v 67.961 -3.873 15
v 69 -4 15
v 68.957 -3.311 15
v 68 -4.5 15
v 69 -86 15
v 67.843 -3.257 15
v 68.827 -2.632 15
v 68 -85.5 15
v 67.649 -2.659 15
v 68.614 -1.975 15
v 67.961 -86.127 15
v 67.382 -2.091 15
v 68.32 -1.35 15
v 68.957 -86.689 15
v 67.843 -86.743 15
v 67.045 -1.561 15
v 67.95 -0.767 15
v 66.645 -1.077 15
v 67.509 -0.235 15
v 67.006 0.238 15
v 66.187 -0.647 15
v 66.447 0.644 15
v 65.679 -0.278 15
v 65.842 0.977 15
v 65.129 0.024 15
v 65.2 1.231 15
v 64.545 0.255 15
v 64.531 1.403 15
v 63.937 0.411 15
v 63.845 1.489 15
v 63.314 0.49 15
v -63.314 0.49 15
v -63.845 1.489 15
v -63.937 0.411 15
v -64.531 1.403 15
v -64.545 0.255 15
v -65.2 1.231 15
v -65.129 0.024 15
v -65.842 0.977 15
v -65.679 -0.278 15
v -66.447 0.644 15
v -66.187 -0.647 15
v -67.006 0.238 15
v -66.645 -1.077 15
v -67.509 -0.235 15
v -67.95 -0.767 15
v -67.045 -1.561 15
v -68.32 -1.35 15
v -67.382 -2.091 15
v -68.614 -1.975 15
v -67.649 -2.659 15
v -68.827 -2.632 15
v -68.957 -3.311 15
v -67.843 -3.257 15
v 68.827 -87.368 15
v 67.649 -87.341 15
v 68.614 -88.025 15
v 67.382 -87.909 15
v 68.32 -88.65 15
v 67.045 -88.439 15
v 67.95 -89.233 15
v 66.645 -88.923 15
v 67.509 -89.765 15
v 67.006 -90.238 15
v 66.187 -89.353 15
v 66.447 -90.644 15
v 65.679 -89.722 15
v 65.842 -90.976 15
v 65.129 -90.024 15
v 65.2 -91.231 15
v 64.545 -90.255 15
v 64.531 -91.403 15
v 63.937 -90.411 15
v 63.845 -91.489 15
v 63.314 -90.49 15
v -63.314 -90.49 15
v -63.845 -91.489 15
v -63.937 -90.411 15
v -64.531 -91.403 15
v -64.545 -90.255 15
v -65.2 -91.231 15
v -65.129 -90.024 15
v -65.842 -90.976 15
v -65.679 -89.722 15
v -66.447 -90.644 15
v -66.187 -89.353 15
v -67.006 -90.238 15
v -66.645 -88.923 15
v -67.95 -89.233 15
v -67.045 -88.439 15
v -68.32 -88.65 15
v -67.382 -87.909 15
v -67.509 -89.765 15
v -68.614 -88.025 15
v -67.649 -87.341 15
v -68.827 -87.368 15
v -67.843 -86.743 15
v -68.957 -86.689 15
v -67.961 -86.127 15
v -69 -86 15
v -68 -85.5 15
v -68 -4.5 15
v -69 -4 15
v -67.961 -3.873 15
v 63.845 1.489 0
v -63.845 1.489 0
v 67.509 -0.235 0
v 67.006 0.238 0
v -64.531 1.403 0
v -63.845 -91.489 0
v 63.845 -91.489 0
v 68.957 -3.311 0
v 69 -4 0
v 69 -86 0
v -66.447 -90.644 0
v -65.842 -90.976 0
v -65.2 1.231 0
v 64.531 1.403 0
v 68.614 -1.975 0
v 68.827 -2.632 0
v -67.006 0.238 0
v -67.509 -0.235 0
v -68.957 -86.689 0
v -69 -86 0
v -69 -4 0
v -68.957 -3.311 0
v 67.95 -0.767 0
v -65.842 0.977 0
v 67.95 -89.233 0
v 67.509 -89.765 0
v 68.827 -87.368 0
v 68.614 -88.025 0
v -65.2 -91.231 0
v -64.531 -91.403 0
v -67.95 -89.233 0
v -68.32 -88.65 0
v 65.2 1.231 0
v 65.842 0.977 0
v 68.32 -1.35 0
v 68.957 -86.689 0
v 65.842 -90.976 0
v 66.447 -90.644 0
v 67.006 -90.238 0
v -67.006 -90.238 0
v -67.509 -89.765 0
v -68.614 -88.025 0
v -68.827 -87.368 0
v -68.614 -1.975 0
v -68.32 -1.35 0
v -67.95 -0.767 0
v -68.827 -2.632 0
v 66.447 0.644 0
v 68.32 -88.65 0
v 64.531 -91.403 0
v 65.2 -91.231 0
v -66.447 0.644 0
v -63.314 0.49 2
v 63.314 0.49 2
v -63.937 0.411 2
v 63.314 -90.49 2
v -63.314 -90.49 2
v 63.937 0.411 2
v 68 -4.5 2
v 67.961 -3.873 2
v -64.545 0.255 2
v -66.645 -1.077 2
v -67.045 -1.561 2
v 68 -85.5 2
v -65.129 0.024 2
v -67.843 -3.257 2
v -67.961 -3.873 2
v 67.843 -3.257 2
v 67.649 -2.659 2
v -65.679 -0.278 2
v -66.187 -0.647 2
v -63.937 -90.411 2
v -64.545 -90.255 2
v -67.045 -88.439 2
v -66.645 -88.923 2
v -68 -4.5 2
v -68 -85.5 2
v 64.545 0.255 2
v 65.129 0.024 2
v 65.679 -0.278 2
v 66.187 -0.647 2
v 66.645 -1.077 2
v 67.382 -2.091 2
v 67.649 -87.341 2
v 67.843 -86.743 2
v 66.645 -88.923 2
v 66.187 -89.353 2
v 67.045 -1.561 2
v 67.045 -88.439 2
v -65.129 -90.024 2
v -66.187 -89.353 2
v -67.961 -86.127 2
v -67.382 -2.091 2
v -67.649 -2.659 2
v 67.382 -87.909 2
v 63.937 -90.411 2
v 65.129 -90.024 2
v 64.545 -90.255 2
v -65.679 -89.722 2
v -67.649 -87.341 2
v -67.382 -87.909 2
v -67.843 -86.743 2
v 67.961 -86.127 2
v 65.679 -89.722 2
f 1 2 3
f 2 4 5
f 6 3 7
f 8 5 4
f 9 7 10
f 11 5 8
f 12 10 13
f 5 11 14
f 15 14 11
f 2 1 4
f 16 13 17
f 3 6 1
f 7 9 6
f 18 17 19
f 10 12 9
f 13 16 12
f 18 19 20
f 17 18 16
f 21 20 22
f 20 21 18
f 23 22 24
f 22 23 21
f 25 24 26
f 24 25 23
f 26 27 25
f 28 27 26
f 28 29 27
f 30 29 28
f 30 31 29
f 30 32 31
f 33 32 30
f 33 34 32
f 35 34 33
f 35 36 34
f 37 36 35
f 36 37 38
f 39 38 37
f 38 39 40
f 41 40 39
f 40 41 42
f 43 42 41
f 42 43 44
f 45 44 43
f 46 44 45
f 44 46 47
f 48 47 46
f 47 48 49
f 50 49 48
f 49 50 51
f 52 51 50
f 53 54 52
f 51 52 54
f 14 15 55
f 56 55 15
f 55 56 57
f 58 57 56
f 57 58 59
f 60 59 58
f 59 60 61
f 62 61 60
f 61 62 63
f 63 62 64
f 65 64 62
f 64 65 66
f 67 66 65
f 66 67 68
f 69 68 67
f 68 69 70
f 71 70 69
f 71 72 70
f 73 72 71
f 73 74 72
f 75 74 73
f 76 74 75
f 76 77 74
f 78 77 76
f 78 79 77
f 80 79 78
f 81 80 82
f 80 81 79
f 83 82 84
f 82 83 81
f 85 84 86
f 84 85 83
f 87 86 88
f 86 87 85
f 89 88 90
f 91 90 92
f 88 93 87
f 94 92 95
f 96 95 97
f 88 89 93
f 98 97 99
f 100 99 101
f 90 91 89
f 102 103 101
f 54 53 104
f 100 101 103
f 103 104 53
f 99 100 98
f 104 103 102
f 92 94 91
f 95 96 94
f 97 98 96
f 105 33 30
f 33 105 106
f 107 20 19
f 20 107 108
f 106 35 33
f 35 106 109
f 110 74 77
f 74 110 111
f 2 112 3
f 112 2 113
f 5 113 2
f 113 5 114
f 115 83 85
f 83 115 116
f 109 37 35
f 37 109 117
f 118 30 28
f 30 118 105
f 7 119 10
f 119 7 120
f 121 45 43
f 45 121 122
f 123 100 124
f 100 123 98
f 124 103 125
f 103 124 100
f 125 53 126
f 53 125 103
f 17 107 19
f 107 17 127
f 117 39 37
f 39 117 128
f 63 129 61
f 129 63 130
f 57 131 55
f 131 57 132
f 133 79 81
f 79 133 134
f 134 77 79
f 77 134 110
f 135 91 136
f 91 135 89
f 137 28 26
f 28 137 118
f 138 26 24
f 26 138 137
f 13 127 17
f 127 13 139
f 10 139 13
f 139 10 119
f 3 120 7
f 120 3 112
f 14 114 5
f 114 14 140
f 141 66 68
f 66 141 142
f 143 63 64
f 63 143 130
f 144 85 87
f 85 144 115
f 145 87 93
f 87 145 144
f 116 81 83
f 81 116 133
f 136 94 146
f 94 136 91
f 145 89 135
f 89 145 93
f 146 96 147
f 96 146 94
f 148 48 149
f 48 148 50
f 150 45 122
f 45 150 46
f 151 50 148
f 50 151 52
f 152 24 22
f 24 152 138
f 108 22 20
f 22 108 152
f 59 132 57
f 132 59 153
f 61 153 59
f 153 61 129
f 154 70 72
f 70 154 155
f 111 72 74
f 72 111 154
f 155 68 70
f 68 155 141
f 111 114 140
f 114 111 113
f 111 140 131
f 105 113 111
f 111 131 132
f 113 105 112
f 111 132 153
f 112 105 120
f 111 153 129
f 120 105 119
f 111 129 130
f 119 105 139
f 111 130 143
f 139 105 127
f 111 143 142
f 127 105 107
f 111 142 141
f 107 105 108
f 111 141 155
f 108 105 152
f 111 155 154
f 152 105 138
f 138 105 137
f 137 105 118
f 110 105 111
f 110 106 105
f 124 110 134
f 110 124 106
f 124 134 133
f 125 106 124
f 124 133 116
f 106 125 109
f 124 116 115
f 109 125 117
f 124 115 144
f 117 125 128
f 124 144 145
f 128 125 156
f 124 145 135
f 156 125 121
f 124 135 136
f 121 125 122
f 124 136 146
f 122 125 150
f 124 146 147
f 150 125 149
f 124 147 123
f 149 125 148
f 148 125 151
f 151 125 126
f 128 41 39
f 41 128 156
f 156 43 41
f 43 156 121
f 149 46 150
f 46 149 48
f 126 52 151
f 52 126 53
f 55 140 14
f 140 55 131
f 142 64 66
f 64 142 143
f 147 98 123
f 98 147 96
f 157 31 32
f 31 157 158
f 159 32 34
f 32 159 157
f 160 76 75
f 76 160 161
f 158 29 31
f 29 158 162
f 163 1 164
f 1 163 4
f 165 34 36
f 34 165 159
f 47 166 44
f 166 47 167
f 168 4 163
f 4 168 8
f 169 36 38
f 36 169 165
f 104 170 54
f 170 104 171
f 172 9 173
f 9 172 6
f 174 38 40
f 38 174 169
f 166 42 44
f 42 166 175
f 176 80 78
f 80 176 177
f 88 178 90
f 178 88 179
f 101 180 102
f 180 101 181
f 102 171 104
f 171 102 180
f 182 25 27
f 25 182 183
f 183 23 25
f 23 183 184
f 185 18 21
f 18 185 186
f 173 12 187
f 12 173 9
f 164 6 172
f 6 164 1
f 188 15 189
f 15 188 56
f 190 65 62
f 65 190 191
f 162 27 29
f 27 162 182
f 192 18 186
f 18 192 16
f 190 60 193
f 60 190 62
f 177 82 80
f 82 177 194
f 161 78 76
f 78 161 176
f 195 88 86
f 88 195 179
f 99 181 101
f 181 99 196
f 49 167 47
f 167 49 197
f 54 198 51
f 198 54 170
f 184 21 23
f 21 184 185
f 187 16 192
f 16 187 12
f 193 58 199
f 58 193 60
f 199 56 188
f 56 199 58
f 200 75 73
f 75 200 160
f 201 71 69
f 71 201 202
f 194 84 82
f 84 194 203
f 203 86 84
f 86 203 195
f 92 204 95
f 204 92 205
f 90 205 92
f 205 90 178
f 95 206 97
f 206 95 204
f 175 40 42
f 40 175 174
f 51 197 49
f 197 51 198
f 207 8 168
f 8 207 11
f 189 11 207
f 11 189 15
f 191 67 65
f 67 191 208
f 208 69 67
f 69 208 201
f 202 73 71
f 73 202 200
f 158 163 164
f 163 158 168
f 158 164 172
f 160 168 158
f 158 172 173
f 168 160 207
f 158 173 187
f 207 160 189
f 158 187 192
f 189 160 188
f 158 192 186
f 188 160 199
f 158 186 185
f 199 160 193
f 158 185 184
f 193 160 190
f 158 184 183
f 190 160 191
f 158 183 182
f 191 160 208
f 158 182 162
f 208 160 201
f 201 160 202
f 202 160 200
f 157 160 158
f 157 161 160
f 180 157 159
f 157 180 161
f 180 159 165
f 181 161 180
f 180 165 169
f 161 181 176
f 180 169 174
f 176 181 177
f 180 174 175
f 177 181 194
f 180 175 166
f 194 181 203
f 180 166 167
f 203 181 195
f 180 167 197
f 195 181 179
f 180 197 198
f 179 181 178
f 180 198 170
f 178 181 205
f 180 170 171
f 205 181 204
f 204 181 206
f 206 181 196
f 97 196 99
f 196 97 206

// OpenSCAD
$fn = 50;


difference() {
	union() {
		translate(v = [0, -45.0000000000, 0]) {
			hull() {
				translate(v = [-63.5000000000, 41.0000000000, 0]) {
					cylinder(h = 15, r = 5.5000000000);
				}
				translate(v = [63.5000000000, 41.0000000000, 0]) {
					cylinder(h = 15, r = 5.5000000000);
				}
				translate(v = [-63.5000000000, -41.0000000000, 0]) {
					cylinder(h = 15, r = 5.5000000000);
				}
				translate(v = [63.5000000000, -41.0000000000, 0]) {
					cylinder(h = 15, r = 5.5000000000);
				}
			}
		}
	}
	union() {
		translate(v = [0, -45.0000000000, 2]) {
			hull() {
				translate(v = [-63.0000000000, 40.5000000000, 0]) {
					cylinder(h = 30, r = 5);
				}
				translate(v = [63.0000000000, 40.5000000000, 0]) {
					cylinder(h = 30, r = 5);
				}
				translate(v = [-63.0000000000, -40.5000000000, 0]) {
					cylinder(h = 30, r = 5);
				}
				translate(v = [63.0000000000, -40.5000000000, 0]) {
					cylinder(h = 30, r = 5);
				}
			}
		}
	}
}
